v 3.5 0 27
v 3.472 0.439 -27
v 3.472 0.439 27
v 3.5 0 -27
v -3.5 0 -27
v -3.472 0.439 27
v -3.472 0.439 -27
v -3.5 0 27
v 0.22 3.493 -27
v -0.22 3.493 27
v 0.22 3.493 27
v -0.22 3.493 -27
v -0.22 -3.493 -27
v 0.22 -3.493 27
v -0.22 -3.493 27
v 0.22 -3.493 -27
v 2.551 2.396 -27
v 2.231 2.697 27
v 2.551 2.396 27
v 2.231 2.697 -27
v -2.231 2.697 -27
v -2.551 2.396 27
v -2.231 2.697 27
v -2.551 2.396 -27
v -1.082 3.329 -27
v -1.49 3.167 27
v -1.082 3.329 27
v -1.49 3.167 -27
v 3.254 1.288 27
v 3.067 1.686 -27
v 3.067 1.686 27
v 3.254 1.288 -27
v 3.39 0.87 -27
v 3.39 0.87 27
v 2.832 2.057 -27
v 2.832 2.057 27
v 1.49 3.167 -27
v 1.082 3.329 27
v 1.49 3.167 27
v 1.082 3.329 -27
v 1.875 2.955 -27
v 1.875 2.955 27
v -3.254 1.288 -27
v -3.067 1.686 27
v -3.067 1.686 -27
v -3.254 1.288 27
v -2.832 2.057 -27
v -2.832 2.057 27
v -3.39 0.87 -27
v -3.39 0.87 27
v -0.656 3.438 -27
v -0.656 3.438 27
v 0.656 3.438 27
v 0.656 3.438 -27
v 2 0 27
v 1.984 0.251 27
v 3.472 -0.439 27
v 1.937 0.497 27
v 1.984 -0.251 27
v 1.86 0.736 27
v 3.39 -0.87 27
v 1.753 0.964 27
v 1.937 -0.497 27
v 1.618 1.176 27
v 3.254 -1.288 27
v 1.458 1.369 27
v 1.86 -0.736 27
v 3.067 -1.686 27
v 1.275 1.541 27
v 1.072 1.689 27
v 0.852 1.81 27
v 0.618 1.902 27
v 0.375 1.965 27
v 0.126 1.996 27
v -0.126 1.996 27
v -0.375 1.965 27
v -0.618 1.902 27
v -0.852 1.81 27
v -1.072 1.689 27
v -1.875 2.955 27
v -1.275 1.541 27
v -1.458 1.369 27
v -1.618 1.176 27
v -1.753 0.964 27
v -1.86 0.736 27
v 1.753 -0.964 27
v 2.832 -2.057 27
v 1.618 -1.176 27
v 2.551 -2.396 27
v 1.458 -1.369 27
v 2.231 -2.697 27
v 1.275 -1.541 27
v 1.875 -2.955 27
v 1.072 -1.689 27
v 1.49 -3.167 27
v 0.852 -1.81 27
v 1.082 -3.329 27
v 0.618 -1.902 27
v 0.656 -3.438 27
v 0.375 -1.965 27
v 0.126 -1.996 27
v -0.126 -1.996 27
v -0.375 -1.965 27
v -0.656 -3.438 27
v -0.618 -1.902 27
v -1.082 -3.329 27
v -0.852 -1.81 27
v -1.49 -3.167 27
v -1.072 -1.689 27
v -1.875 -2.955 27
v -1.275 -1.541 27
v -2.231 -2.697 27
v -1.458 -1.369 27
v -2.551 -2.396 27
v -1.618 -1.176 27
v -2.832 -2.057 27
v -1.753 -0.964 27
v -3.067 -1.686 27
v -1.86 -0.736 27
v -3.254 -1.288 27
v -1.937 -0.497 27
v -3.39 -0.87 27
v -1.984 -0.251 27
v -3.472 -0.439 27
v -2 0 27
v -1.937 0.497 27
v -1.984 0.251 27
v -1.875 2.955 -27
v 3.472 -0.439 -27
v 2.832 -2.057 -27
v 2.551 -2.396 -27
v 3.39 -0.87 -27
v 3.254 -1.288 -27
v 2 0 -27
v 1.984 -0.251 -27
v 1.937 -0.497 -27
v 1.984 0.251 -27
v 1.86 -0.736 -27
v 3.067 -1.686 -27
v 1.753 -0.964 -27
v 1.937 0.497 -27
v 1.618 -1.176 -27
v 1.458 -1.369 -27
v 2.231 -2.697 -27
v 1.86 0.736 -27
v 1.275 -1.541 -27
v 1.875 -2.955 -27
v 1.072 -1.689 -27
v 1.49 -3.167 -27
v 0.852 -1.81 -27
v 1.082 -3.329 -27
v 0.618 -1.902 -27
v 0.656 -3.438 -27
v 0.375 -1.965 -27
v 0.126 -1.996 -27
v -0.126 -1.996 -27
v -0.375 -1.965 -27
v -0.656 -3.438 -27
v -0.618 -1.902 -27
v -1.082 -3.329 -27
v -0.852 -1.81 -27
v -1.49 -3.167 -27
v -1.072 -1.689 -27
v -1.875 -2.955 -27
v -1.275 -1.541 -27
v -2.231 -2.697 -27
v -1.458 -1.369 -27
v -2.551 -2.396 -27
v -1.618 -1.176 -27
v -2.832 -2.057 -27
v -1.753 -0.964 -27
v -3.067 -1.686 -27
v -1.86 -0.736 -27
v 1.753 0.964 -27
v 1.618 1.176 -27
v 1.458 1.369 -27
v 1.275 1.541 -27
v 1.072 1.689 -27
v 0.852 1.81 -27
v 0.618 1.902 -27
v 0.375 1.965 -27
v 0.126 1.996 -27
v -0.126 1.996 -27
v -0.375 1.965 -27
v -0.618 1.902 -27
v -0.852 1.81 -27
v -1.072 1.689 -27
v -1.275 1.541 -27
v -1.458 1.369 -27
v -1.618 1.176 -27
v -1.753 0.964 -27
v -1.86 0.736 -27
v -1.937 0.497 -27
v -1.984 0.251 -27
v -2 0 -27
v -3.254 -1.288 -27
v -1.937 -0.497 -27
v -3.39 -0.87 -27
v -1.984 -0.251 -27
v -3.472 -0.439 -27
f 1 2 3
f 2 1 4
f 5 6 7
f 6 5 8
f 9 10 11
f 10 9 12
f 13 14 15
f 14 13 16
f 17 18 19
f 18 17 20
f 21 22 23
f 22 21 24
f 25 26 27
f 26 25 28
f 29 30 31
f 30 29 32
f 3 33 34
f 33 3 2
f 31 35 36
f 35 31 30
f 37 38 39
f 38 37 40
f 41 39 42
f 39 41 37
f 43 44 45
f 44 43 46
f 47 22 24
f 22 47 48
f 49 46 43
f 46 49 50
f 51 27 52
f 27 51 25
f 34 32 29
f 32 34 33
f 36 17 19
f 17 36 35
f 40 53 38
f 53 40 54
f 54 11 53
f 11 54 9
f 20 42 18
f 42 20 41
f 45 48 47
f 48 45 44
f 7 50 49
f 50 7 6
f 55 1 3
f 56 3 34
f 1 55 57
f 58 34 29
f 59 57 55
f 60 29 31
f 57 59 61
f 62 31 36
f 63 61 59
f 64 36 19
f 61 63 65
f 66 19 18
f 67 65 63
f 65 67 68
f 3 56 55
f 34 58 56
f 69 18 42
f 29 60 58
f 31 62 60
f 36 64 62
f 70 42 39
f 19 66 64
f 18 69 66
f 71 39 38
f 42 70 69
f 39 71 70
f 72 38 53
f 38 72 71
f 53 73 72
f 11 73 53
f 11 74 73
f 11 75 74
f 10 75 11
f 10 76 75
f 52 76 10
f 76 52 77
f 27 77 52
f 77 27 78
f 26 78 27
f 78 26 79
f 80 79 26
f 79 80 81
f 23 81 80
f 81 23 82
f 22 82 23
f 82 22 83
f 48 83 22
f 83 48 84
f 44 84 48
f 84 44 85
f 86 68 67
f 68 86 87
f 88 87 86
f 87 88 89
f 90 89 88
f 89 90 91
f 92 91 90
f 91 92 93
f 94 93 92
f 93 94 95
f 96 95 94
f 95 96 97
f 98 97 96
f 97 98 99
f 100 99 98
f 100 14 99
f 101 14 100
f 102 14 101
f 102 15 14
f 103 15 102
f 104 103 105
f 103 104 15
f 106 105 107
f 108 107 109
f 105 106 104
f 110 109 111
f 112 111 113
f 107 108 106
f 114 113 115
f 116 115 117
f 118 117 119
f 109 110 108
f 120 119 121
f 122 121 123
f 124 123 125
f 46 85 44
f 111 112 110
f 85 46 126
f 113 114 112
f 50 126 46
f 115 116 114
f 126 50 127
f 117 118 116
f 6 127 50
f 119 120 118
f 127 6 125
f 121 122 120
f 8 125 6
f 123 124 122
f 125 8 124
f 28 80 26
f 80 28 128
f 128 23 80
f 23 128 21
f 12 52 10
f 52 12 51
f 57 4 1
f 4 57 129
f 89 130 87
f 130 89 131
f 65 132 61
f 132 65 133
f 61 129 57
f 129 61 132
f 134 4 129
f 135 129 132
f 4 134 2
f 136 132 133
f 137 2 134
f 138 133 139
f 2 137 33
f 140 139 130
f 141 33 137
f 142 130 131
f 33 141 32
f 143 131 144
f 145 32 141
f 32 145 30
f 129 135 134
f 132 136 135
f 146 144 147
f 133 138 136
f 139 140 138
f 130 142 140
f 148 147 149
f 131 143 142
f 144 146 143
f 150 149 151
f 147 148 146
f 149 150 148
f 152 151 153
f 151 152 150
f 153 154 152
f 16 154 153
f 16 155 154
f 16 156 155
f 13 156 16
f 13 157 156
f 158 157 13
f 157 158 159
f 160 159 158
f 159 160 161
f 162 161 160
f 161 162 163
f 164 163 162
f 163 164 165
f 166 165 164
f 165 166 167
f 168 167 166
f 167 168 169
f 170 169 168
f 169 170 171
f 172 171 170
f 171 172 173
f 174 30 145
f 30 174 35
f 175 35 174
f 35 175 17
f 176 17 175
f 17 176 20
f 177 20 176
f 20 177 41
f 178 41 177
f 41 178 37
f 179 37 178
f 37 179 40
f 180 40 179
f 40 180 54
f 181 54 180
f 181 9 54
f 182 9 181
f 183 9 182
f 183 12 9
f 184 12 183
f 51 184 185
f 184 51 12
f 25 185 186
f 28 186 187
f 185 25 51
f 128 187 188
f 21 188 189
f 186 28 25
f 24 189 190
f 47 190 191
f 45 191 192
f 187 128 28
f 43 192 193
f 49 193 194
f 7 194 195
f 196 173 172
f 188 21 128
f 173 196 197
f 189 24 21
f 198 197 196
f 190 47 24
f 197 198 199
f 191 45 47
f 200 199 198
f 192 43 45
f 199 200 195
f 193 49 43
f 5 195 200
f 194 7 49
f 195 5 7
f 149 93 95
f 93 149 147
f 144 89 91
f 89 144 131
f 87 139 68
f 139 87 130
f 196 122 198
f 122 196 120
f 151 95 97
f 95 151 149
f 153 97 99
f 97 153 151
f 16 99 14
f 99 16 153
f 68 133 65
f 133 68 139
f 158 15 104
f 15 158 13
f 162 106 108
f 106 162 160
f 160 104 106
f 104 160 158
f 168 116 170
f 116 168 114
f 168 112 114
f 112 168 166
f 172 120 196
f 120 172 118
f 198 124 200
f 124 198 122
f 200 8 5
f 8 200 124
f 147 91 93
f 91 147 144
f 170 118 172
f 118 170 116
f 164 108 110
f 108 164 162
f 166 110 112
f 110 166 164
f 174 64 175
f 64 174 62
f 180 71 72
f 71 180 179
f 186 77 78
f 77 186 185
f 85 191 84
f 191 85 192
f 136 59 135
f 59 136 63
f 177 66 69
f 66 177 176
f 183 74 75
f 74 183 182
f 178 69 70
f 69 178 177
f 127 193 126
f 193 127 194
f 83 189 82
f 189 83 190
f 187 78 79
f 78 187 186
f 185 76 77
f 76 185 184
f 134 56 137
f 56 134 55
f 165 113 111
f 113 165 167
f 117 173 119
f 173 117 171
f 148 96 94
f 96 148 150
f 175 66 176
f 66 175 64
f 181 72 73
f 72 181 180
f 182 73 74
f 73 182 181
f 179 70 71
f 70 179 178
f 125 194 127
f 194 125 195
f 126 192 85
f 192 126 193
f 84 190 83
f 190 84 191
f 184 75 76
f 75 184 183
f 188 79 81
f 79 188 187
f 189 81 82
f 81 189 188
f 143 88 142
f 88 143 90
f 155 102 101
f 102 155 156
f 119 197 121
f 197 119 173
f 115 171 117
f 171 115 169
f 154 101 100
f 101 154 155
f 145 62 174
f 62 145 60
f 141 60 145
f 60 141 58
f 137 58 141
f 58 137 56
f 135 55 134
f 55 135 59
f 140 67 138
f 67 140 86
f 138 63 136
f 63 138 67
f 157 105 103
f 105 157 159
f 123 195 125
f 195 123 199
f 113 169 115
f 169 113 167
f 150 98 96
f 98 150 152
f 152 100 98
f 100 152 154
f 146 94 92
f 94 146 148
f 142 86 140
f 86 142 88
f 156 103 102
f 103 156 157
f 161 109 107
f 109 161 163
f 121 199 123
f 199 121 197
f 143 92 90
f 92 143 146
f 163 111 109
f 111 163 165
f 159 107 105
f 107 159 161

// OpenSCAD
$fn = 50;


difference() {
	union() {
		translate(v = [0, 0, -27.0000000000]) {
			cylinder(h = 54, r = 3.5000000000);
		}
	}
	union() {
		translate(v = [0, 0, -100.0000000000]) {
			cylinder(h = 200, r = 2);
		}
	}
}
